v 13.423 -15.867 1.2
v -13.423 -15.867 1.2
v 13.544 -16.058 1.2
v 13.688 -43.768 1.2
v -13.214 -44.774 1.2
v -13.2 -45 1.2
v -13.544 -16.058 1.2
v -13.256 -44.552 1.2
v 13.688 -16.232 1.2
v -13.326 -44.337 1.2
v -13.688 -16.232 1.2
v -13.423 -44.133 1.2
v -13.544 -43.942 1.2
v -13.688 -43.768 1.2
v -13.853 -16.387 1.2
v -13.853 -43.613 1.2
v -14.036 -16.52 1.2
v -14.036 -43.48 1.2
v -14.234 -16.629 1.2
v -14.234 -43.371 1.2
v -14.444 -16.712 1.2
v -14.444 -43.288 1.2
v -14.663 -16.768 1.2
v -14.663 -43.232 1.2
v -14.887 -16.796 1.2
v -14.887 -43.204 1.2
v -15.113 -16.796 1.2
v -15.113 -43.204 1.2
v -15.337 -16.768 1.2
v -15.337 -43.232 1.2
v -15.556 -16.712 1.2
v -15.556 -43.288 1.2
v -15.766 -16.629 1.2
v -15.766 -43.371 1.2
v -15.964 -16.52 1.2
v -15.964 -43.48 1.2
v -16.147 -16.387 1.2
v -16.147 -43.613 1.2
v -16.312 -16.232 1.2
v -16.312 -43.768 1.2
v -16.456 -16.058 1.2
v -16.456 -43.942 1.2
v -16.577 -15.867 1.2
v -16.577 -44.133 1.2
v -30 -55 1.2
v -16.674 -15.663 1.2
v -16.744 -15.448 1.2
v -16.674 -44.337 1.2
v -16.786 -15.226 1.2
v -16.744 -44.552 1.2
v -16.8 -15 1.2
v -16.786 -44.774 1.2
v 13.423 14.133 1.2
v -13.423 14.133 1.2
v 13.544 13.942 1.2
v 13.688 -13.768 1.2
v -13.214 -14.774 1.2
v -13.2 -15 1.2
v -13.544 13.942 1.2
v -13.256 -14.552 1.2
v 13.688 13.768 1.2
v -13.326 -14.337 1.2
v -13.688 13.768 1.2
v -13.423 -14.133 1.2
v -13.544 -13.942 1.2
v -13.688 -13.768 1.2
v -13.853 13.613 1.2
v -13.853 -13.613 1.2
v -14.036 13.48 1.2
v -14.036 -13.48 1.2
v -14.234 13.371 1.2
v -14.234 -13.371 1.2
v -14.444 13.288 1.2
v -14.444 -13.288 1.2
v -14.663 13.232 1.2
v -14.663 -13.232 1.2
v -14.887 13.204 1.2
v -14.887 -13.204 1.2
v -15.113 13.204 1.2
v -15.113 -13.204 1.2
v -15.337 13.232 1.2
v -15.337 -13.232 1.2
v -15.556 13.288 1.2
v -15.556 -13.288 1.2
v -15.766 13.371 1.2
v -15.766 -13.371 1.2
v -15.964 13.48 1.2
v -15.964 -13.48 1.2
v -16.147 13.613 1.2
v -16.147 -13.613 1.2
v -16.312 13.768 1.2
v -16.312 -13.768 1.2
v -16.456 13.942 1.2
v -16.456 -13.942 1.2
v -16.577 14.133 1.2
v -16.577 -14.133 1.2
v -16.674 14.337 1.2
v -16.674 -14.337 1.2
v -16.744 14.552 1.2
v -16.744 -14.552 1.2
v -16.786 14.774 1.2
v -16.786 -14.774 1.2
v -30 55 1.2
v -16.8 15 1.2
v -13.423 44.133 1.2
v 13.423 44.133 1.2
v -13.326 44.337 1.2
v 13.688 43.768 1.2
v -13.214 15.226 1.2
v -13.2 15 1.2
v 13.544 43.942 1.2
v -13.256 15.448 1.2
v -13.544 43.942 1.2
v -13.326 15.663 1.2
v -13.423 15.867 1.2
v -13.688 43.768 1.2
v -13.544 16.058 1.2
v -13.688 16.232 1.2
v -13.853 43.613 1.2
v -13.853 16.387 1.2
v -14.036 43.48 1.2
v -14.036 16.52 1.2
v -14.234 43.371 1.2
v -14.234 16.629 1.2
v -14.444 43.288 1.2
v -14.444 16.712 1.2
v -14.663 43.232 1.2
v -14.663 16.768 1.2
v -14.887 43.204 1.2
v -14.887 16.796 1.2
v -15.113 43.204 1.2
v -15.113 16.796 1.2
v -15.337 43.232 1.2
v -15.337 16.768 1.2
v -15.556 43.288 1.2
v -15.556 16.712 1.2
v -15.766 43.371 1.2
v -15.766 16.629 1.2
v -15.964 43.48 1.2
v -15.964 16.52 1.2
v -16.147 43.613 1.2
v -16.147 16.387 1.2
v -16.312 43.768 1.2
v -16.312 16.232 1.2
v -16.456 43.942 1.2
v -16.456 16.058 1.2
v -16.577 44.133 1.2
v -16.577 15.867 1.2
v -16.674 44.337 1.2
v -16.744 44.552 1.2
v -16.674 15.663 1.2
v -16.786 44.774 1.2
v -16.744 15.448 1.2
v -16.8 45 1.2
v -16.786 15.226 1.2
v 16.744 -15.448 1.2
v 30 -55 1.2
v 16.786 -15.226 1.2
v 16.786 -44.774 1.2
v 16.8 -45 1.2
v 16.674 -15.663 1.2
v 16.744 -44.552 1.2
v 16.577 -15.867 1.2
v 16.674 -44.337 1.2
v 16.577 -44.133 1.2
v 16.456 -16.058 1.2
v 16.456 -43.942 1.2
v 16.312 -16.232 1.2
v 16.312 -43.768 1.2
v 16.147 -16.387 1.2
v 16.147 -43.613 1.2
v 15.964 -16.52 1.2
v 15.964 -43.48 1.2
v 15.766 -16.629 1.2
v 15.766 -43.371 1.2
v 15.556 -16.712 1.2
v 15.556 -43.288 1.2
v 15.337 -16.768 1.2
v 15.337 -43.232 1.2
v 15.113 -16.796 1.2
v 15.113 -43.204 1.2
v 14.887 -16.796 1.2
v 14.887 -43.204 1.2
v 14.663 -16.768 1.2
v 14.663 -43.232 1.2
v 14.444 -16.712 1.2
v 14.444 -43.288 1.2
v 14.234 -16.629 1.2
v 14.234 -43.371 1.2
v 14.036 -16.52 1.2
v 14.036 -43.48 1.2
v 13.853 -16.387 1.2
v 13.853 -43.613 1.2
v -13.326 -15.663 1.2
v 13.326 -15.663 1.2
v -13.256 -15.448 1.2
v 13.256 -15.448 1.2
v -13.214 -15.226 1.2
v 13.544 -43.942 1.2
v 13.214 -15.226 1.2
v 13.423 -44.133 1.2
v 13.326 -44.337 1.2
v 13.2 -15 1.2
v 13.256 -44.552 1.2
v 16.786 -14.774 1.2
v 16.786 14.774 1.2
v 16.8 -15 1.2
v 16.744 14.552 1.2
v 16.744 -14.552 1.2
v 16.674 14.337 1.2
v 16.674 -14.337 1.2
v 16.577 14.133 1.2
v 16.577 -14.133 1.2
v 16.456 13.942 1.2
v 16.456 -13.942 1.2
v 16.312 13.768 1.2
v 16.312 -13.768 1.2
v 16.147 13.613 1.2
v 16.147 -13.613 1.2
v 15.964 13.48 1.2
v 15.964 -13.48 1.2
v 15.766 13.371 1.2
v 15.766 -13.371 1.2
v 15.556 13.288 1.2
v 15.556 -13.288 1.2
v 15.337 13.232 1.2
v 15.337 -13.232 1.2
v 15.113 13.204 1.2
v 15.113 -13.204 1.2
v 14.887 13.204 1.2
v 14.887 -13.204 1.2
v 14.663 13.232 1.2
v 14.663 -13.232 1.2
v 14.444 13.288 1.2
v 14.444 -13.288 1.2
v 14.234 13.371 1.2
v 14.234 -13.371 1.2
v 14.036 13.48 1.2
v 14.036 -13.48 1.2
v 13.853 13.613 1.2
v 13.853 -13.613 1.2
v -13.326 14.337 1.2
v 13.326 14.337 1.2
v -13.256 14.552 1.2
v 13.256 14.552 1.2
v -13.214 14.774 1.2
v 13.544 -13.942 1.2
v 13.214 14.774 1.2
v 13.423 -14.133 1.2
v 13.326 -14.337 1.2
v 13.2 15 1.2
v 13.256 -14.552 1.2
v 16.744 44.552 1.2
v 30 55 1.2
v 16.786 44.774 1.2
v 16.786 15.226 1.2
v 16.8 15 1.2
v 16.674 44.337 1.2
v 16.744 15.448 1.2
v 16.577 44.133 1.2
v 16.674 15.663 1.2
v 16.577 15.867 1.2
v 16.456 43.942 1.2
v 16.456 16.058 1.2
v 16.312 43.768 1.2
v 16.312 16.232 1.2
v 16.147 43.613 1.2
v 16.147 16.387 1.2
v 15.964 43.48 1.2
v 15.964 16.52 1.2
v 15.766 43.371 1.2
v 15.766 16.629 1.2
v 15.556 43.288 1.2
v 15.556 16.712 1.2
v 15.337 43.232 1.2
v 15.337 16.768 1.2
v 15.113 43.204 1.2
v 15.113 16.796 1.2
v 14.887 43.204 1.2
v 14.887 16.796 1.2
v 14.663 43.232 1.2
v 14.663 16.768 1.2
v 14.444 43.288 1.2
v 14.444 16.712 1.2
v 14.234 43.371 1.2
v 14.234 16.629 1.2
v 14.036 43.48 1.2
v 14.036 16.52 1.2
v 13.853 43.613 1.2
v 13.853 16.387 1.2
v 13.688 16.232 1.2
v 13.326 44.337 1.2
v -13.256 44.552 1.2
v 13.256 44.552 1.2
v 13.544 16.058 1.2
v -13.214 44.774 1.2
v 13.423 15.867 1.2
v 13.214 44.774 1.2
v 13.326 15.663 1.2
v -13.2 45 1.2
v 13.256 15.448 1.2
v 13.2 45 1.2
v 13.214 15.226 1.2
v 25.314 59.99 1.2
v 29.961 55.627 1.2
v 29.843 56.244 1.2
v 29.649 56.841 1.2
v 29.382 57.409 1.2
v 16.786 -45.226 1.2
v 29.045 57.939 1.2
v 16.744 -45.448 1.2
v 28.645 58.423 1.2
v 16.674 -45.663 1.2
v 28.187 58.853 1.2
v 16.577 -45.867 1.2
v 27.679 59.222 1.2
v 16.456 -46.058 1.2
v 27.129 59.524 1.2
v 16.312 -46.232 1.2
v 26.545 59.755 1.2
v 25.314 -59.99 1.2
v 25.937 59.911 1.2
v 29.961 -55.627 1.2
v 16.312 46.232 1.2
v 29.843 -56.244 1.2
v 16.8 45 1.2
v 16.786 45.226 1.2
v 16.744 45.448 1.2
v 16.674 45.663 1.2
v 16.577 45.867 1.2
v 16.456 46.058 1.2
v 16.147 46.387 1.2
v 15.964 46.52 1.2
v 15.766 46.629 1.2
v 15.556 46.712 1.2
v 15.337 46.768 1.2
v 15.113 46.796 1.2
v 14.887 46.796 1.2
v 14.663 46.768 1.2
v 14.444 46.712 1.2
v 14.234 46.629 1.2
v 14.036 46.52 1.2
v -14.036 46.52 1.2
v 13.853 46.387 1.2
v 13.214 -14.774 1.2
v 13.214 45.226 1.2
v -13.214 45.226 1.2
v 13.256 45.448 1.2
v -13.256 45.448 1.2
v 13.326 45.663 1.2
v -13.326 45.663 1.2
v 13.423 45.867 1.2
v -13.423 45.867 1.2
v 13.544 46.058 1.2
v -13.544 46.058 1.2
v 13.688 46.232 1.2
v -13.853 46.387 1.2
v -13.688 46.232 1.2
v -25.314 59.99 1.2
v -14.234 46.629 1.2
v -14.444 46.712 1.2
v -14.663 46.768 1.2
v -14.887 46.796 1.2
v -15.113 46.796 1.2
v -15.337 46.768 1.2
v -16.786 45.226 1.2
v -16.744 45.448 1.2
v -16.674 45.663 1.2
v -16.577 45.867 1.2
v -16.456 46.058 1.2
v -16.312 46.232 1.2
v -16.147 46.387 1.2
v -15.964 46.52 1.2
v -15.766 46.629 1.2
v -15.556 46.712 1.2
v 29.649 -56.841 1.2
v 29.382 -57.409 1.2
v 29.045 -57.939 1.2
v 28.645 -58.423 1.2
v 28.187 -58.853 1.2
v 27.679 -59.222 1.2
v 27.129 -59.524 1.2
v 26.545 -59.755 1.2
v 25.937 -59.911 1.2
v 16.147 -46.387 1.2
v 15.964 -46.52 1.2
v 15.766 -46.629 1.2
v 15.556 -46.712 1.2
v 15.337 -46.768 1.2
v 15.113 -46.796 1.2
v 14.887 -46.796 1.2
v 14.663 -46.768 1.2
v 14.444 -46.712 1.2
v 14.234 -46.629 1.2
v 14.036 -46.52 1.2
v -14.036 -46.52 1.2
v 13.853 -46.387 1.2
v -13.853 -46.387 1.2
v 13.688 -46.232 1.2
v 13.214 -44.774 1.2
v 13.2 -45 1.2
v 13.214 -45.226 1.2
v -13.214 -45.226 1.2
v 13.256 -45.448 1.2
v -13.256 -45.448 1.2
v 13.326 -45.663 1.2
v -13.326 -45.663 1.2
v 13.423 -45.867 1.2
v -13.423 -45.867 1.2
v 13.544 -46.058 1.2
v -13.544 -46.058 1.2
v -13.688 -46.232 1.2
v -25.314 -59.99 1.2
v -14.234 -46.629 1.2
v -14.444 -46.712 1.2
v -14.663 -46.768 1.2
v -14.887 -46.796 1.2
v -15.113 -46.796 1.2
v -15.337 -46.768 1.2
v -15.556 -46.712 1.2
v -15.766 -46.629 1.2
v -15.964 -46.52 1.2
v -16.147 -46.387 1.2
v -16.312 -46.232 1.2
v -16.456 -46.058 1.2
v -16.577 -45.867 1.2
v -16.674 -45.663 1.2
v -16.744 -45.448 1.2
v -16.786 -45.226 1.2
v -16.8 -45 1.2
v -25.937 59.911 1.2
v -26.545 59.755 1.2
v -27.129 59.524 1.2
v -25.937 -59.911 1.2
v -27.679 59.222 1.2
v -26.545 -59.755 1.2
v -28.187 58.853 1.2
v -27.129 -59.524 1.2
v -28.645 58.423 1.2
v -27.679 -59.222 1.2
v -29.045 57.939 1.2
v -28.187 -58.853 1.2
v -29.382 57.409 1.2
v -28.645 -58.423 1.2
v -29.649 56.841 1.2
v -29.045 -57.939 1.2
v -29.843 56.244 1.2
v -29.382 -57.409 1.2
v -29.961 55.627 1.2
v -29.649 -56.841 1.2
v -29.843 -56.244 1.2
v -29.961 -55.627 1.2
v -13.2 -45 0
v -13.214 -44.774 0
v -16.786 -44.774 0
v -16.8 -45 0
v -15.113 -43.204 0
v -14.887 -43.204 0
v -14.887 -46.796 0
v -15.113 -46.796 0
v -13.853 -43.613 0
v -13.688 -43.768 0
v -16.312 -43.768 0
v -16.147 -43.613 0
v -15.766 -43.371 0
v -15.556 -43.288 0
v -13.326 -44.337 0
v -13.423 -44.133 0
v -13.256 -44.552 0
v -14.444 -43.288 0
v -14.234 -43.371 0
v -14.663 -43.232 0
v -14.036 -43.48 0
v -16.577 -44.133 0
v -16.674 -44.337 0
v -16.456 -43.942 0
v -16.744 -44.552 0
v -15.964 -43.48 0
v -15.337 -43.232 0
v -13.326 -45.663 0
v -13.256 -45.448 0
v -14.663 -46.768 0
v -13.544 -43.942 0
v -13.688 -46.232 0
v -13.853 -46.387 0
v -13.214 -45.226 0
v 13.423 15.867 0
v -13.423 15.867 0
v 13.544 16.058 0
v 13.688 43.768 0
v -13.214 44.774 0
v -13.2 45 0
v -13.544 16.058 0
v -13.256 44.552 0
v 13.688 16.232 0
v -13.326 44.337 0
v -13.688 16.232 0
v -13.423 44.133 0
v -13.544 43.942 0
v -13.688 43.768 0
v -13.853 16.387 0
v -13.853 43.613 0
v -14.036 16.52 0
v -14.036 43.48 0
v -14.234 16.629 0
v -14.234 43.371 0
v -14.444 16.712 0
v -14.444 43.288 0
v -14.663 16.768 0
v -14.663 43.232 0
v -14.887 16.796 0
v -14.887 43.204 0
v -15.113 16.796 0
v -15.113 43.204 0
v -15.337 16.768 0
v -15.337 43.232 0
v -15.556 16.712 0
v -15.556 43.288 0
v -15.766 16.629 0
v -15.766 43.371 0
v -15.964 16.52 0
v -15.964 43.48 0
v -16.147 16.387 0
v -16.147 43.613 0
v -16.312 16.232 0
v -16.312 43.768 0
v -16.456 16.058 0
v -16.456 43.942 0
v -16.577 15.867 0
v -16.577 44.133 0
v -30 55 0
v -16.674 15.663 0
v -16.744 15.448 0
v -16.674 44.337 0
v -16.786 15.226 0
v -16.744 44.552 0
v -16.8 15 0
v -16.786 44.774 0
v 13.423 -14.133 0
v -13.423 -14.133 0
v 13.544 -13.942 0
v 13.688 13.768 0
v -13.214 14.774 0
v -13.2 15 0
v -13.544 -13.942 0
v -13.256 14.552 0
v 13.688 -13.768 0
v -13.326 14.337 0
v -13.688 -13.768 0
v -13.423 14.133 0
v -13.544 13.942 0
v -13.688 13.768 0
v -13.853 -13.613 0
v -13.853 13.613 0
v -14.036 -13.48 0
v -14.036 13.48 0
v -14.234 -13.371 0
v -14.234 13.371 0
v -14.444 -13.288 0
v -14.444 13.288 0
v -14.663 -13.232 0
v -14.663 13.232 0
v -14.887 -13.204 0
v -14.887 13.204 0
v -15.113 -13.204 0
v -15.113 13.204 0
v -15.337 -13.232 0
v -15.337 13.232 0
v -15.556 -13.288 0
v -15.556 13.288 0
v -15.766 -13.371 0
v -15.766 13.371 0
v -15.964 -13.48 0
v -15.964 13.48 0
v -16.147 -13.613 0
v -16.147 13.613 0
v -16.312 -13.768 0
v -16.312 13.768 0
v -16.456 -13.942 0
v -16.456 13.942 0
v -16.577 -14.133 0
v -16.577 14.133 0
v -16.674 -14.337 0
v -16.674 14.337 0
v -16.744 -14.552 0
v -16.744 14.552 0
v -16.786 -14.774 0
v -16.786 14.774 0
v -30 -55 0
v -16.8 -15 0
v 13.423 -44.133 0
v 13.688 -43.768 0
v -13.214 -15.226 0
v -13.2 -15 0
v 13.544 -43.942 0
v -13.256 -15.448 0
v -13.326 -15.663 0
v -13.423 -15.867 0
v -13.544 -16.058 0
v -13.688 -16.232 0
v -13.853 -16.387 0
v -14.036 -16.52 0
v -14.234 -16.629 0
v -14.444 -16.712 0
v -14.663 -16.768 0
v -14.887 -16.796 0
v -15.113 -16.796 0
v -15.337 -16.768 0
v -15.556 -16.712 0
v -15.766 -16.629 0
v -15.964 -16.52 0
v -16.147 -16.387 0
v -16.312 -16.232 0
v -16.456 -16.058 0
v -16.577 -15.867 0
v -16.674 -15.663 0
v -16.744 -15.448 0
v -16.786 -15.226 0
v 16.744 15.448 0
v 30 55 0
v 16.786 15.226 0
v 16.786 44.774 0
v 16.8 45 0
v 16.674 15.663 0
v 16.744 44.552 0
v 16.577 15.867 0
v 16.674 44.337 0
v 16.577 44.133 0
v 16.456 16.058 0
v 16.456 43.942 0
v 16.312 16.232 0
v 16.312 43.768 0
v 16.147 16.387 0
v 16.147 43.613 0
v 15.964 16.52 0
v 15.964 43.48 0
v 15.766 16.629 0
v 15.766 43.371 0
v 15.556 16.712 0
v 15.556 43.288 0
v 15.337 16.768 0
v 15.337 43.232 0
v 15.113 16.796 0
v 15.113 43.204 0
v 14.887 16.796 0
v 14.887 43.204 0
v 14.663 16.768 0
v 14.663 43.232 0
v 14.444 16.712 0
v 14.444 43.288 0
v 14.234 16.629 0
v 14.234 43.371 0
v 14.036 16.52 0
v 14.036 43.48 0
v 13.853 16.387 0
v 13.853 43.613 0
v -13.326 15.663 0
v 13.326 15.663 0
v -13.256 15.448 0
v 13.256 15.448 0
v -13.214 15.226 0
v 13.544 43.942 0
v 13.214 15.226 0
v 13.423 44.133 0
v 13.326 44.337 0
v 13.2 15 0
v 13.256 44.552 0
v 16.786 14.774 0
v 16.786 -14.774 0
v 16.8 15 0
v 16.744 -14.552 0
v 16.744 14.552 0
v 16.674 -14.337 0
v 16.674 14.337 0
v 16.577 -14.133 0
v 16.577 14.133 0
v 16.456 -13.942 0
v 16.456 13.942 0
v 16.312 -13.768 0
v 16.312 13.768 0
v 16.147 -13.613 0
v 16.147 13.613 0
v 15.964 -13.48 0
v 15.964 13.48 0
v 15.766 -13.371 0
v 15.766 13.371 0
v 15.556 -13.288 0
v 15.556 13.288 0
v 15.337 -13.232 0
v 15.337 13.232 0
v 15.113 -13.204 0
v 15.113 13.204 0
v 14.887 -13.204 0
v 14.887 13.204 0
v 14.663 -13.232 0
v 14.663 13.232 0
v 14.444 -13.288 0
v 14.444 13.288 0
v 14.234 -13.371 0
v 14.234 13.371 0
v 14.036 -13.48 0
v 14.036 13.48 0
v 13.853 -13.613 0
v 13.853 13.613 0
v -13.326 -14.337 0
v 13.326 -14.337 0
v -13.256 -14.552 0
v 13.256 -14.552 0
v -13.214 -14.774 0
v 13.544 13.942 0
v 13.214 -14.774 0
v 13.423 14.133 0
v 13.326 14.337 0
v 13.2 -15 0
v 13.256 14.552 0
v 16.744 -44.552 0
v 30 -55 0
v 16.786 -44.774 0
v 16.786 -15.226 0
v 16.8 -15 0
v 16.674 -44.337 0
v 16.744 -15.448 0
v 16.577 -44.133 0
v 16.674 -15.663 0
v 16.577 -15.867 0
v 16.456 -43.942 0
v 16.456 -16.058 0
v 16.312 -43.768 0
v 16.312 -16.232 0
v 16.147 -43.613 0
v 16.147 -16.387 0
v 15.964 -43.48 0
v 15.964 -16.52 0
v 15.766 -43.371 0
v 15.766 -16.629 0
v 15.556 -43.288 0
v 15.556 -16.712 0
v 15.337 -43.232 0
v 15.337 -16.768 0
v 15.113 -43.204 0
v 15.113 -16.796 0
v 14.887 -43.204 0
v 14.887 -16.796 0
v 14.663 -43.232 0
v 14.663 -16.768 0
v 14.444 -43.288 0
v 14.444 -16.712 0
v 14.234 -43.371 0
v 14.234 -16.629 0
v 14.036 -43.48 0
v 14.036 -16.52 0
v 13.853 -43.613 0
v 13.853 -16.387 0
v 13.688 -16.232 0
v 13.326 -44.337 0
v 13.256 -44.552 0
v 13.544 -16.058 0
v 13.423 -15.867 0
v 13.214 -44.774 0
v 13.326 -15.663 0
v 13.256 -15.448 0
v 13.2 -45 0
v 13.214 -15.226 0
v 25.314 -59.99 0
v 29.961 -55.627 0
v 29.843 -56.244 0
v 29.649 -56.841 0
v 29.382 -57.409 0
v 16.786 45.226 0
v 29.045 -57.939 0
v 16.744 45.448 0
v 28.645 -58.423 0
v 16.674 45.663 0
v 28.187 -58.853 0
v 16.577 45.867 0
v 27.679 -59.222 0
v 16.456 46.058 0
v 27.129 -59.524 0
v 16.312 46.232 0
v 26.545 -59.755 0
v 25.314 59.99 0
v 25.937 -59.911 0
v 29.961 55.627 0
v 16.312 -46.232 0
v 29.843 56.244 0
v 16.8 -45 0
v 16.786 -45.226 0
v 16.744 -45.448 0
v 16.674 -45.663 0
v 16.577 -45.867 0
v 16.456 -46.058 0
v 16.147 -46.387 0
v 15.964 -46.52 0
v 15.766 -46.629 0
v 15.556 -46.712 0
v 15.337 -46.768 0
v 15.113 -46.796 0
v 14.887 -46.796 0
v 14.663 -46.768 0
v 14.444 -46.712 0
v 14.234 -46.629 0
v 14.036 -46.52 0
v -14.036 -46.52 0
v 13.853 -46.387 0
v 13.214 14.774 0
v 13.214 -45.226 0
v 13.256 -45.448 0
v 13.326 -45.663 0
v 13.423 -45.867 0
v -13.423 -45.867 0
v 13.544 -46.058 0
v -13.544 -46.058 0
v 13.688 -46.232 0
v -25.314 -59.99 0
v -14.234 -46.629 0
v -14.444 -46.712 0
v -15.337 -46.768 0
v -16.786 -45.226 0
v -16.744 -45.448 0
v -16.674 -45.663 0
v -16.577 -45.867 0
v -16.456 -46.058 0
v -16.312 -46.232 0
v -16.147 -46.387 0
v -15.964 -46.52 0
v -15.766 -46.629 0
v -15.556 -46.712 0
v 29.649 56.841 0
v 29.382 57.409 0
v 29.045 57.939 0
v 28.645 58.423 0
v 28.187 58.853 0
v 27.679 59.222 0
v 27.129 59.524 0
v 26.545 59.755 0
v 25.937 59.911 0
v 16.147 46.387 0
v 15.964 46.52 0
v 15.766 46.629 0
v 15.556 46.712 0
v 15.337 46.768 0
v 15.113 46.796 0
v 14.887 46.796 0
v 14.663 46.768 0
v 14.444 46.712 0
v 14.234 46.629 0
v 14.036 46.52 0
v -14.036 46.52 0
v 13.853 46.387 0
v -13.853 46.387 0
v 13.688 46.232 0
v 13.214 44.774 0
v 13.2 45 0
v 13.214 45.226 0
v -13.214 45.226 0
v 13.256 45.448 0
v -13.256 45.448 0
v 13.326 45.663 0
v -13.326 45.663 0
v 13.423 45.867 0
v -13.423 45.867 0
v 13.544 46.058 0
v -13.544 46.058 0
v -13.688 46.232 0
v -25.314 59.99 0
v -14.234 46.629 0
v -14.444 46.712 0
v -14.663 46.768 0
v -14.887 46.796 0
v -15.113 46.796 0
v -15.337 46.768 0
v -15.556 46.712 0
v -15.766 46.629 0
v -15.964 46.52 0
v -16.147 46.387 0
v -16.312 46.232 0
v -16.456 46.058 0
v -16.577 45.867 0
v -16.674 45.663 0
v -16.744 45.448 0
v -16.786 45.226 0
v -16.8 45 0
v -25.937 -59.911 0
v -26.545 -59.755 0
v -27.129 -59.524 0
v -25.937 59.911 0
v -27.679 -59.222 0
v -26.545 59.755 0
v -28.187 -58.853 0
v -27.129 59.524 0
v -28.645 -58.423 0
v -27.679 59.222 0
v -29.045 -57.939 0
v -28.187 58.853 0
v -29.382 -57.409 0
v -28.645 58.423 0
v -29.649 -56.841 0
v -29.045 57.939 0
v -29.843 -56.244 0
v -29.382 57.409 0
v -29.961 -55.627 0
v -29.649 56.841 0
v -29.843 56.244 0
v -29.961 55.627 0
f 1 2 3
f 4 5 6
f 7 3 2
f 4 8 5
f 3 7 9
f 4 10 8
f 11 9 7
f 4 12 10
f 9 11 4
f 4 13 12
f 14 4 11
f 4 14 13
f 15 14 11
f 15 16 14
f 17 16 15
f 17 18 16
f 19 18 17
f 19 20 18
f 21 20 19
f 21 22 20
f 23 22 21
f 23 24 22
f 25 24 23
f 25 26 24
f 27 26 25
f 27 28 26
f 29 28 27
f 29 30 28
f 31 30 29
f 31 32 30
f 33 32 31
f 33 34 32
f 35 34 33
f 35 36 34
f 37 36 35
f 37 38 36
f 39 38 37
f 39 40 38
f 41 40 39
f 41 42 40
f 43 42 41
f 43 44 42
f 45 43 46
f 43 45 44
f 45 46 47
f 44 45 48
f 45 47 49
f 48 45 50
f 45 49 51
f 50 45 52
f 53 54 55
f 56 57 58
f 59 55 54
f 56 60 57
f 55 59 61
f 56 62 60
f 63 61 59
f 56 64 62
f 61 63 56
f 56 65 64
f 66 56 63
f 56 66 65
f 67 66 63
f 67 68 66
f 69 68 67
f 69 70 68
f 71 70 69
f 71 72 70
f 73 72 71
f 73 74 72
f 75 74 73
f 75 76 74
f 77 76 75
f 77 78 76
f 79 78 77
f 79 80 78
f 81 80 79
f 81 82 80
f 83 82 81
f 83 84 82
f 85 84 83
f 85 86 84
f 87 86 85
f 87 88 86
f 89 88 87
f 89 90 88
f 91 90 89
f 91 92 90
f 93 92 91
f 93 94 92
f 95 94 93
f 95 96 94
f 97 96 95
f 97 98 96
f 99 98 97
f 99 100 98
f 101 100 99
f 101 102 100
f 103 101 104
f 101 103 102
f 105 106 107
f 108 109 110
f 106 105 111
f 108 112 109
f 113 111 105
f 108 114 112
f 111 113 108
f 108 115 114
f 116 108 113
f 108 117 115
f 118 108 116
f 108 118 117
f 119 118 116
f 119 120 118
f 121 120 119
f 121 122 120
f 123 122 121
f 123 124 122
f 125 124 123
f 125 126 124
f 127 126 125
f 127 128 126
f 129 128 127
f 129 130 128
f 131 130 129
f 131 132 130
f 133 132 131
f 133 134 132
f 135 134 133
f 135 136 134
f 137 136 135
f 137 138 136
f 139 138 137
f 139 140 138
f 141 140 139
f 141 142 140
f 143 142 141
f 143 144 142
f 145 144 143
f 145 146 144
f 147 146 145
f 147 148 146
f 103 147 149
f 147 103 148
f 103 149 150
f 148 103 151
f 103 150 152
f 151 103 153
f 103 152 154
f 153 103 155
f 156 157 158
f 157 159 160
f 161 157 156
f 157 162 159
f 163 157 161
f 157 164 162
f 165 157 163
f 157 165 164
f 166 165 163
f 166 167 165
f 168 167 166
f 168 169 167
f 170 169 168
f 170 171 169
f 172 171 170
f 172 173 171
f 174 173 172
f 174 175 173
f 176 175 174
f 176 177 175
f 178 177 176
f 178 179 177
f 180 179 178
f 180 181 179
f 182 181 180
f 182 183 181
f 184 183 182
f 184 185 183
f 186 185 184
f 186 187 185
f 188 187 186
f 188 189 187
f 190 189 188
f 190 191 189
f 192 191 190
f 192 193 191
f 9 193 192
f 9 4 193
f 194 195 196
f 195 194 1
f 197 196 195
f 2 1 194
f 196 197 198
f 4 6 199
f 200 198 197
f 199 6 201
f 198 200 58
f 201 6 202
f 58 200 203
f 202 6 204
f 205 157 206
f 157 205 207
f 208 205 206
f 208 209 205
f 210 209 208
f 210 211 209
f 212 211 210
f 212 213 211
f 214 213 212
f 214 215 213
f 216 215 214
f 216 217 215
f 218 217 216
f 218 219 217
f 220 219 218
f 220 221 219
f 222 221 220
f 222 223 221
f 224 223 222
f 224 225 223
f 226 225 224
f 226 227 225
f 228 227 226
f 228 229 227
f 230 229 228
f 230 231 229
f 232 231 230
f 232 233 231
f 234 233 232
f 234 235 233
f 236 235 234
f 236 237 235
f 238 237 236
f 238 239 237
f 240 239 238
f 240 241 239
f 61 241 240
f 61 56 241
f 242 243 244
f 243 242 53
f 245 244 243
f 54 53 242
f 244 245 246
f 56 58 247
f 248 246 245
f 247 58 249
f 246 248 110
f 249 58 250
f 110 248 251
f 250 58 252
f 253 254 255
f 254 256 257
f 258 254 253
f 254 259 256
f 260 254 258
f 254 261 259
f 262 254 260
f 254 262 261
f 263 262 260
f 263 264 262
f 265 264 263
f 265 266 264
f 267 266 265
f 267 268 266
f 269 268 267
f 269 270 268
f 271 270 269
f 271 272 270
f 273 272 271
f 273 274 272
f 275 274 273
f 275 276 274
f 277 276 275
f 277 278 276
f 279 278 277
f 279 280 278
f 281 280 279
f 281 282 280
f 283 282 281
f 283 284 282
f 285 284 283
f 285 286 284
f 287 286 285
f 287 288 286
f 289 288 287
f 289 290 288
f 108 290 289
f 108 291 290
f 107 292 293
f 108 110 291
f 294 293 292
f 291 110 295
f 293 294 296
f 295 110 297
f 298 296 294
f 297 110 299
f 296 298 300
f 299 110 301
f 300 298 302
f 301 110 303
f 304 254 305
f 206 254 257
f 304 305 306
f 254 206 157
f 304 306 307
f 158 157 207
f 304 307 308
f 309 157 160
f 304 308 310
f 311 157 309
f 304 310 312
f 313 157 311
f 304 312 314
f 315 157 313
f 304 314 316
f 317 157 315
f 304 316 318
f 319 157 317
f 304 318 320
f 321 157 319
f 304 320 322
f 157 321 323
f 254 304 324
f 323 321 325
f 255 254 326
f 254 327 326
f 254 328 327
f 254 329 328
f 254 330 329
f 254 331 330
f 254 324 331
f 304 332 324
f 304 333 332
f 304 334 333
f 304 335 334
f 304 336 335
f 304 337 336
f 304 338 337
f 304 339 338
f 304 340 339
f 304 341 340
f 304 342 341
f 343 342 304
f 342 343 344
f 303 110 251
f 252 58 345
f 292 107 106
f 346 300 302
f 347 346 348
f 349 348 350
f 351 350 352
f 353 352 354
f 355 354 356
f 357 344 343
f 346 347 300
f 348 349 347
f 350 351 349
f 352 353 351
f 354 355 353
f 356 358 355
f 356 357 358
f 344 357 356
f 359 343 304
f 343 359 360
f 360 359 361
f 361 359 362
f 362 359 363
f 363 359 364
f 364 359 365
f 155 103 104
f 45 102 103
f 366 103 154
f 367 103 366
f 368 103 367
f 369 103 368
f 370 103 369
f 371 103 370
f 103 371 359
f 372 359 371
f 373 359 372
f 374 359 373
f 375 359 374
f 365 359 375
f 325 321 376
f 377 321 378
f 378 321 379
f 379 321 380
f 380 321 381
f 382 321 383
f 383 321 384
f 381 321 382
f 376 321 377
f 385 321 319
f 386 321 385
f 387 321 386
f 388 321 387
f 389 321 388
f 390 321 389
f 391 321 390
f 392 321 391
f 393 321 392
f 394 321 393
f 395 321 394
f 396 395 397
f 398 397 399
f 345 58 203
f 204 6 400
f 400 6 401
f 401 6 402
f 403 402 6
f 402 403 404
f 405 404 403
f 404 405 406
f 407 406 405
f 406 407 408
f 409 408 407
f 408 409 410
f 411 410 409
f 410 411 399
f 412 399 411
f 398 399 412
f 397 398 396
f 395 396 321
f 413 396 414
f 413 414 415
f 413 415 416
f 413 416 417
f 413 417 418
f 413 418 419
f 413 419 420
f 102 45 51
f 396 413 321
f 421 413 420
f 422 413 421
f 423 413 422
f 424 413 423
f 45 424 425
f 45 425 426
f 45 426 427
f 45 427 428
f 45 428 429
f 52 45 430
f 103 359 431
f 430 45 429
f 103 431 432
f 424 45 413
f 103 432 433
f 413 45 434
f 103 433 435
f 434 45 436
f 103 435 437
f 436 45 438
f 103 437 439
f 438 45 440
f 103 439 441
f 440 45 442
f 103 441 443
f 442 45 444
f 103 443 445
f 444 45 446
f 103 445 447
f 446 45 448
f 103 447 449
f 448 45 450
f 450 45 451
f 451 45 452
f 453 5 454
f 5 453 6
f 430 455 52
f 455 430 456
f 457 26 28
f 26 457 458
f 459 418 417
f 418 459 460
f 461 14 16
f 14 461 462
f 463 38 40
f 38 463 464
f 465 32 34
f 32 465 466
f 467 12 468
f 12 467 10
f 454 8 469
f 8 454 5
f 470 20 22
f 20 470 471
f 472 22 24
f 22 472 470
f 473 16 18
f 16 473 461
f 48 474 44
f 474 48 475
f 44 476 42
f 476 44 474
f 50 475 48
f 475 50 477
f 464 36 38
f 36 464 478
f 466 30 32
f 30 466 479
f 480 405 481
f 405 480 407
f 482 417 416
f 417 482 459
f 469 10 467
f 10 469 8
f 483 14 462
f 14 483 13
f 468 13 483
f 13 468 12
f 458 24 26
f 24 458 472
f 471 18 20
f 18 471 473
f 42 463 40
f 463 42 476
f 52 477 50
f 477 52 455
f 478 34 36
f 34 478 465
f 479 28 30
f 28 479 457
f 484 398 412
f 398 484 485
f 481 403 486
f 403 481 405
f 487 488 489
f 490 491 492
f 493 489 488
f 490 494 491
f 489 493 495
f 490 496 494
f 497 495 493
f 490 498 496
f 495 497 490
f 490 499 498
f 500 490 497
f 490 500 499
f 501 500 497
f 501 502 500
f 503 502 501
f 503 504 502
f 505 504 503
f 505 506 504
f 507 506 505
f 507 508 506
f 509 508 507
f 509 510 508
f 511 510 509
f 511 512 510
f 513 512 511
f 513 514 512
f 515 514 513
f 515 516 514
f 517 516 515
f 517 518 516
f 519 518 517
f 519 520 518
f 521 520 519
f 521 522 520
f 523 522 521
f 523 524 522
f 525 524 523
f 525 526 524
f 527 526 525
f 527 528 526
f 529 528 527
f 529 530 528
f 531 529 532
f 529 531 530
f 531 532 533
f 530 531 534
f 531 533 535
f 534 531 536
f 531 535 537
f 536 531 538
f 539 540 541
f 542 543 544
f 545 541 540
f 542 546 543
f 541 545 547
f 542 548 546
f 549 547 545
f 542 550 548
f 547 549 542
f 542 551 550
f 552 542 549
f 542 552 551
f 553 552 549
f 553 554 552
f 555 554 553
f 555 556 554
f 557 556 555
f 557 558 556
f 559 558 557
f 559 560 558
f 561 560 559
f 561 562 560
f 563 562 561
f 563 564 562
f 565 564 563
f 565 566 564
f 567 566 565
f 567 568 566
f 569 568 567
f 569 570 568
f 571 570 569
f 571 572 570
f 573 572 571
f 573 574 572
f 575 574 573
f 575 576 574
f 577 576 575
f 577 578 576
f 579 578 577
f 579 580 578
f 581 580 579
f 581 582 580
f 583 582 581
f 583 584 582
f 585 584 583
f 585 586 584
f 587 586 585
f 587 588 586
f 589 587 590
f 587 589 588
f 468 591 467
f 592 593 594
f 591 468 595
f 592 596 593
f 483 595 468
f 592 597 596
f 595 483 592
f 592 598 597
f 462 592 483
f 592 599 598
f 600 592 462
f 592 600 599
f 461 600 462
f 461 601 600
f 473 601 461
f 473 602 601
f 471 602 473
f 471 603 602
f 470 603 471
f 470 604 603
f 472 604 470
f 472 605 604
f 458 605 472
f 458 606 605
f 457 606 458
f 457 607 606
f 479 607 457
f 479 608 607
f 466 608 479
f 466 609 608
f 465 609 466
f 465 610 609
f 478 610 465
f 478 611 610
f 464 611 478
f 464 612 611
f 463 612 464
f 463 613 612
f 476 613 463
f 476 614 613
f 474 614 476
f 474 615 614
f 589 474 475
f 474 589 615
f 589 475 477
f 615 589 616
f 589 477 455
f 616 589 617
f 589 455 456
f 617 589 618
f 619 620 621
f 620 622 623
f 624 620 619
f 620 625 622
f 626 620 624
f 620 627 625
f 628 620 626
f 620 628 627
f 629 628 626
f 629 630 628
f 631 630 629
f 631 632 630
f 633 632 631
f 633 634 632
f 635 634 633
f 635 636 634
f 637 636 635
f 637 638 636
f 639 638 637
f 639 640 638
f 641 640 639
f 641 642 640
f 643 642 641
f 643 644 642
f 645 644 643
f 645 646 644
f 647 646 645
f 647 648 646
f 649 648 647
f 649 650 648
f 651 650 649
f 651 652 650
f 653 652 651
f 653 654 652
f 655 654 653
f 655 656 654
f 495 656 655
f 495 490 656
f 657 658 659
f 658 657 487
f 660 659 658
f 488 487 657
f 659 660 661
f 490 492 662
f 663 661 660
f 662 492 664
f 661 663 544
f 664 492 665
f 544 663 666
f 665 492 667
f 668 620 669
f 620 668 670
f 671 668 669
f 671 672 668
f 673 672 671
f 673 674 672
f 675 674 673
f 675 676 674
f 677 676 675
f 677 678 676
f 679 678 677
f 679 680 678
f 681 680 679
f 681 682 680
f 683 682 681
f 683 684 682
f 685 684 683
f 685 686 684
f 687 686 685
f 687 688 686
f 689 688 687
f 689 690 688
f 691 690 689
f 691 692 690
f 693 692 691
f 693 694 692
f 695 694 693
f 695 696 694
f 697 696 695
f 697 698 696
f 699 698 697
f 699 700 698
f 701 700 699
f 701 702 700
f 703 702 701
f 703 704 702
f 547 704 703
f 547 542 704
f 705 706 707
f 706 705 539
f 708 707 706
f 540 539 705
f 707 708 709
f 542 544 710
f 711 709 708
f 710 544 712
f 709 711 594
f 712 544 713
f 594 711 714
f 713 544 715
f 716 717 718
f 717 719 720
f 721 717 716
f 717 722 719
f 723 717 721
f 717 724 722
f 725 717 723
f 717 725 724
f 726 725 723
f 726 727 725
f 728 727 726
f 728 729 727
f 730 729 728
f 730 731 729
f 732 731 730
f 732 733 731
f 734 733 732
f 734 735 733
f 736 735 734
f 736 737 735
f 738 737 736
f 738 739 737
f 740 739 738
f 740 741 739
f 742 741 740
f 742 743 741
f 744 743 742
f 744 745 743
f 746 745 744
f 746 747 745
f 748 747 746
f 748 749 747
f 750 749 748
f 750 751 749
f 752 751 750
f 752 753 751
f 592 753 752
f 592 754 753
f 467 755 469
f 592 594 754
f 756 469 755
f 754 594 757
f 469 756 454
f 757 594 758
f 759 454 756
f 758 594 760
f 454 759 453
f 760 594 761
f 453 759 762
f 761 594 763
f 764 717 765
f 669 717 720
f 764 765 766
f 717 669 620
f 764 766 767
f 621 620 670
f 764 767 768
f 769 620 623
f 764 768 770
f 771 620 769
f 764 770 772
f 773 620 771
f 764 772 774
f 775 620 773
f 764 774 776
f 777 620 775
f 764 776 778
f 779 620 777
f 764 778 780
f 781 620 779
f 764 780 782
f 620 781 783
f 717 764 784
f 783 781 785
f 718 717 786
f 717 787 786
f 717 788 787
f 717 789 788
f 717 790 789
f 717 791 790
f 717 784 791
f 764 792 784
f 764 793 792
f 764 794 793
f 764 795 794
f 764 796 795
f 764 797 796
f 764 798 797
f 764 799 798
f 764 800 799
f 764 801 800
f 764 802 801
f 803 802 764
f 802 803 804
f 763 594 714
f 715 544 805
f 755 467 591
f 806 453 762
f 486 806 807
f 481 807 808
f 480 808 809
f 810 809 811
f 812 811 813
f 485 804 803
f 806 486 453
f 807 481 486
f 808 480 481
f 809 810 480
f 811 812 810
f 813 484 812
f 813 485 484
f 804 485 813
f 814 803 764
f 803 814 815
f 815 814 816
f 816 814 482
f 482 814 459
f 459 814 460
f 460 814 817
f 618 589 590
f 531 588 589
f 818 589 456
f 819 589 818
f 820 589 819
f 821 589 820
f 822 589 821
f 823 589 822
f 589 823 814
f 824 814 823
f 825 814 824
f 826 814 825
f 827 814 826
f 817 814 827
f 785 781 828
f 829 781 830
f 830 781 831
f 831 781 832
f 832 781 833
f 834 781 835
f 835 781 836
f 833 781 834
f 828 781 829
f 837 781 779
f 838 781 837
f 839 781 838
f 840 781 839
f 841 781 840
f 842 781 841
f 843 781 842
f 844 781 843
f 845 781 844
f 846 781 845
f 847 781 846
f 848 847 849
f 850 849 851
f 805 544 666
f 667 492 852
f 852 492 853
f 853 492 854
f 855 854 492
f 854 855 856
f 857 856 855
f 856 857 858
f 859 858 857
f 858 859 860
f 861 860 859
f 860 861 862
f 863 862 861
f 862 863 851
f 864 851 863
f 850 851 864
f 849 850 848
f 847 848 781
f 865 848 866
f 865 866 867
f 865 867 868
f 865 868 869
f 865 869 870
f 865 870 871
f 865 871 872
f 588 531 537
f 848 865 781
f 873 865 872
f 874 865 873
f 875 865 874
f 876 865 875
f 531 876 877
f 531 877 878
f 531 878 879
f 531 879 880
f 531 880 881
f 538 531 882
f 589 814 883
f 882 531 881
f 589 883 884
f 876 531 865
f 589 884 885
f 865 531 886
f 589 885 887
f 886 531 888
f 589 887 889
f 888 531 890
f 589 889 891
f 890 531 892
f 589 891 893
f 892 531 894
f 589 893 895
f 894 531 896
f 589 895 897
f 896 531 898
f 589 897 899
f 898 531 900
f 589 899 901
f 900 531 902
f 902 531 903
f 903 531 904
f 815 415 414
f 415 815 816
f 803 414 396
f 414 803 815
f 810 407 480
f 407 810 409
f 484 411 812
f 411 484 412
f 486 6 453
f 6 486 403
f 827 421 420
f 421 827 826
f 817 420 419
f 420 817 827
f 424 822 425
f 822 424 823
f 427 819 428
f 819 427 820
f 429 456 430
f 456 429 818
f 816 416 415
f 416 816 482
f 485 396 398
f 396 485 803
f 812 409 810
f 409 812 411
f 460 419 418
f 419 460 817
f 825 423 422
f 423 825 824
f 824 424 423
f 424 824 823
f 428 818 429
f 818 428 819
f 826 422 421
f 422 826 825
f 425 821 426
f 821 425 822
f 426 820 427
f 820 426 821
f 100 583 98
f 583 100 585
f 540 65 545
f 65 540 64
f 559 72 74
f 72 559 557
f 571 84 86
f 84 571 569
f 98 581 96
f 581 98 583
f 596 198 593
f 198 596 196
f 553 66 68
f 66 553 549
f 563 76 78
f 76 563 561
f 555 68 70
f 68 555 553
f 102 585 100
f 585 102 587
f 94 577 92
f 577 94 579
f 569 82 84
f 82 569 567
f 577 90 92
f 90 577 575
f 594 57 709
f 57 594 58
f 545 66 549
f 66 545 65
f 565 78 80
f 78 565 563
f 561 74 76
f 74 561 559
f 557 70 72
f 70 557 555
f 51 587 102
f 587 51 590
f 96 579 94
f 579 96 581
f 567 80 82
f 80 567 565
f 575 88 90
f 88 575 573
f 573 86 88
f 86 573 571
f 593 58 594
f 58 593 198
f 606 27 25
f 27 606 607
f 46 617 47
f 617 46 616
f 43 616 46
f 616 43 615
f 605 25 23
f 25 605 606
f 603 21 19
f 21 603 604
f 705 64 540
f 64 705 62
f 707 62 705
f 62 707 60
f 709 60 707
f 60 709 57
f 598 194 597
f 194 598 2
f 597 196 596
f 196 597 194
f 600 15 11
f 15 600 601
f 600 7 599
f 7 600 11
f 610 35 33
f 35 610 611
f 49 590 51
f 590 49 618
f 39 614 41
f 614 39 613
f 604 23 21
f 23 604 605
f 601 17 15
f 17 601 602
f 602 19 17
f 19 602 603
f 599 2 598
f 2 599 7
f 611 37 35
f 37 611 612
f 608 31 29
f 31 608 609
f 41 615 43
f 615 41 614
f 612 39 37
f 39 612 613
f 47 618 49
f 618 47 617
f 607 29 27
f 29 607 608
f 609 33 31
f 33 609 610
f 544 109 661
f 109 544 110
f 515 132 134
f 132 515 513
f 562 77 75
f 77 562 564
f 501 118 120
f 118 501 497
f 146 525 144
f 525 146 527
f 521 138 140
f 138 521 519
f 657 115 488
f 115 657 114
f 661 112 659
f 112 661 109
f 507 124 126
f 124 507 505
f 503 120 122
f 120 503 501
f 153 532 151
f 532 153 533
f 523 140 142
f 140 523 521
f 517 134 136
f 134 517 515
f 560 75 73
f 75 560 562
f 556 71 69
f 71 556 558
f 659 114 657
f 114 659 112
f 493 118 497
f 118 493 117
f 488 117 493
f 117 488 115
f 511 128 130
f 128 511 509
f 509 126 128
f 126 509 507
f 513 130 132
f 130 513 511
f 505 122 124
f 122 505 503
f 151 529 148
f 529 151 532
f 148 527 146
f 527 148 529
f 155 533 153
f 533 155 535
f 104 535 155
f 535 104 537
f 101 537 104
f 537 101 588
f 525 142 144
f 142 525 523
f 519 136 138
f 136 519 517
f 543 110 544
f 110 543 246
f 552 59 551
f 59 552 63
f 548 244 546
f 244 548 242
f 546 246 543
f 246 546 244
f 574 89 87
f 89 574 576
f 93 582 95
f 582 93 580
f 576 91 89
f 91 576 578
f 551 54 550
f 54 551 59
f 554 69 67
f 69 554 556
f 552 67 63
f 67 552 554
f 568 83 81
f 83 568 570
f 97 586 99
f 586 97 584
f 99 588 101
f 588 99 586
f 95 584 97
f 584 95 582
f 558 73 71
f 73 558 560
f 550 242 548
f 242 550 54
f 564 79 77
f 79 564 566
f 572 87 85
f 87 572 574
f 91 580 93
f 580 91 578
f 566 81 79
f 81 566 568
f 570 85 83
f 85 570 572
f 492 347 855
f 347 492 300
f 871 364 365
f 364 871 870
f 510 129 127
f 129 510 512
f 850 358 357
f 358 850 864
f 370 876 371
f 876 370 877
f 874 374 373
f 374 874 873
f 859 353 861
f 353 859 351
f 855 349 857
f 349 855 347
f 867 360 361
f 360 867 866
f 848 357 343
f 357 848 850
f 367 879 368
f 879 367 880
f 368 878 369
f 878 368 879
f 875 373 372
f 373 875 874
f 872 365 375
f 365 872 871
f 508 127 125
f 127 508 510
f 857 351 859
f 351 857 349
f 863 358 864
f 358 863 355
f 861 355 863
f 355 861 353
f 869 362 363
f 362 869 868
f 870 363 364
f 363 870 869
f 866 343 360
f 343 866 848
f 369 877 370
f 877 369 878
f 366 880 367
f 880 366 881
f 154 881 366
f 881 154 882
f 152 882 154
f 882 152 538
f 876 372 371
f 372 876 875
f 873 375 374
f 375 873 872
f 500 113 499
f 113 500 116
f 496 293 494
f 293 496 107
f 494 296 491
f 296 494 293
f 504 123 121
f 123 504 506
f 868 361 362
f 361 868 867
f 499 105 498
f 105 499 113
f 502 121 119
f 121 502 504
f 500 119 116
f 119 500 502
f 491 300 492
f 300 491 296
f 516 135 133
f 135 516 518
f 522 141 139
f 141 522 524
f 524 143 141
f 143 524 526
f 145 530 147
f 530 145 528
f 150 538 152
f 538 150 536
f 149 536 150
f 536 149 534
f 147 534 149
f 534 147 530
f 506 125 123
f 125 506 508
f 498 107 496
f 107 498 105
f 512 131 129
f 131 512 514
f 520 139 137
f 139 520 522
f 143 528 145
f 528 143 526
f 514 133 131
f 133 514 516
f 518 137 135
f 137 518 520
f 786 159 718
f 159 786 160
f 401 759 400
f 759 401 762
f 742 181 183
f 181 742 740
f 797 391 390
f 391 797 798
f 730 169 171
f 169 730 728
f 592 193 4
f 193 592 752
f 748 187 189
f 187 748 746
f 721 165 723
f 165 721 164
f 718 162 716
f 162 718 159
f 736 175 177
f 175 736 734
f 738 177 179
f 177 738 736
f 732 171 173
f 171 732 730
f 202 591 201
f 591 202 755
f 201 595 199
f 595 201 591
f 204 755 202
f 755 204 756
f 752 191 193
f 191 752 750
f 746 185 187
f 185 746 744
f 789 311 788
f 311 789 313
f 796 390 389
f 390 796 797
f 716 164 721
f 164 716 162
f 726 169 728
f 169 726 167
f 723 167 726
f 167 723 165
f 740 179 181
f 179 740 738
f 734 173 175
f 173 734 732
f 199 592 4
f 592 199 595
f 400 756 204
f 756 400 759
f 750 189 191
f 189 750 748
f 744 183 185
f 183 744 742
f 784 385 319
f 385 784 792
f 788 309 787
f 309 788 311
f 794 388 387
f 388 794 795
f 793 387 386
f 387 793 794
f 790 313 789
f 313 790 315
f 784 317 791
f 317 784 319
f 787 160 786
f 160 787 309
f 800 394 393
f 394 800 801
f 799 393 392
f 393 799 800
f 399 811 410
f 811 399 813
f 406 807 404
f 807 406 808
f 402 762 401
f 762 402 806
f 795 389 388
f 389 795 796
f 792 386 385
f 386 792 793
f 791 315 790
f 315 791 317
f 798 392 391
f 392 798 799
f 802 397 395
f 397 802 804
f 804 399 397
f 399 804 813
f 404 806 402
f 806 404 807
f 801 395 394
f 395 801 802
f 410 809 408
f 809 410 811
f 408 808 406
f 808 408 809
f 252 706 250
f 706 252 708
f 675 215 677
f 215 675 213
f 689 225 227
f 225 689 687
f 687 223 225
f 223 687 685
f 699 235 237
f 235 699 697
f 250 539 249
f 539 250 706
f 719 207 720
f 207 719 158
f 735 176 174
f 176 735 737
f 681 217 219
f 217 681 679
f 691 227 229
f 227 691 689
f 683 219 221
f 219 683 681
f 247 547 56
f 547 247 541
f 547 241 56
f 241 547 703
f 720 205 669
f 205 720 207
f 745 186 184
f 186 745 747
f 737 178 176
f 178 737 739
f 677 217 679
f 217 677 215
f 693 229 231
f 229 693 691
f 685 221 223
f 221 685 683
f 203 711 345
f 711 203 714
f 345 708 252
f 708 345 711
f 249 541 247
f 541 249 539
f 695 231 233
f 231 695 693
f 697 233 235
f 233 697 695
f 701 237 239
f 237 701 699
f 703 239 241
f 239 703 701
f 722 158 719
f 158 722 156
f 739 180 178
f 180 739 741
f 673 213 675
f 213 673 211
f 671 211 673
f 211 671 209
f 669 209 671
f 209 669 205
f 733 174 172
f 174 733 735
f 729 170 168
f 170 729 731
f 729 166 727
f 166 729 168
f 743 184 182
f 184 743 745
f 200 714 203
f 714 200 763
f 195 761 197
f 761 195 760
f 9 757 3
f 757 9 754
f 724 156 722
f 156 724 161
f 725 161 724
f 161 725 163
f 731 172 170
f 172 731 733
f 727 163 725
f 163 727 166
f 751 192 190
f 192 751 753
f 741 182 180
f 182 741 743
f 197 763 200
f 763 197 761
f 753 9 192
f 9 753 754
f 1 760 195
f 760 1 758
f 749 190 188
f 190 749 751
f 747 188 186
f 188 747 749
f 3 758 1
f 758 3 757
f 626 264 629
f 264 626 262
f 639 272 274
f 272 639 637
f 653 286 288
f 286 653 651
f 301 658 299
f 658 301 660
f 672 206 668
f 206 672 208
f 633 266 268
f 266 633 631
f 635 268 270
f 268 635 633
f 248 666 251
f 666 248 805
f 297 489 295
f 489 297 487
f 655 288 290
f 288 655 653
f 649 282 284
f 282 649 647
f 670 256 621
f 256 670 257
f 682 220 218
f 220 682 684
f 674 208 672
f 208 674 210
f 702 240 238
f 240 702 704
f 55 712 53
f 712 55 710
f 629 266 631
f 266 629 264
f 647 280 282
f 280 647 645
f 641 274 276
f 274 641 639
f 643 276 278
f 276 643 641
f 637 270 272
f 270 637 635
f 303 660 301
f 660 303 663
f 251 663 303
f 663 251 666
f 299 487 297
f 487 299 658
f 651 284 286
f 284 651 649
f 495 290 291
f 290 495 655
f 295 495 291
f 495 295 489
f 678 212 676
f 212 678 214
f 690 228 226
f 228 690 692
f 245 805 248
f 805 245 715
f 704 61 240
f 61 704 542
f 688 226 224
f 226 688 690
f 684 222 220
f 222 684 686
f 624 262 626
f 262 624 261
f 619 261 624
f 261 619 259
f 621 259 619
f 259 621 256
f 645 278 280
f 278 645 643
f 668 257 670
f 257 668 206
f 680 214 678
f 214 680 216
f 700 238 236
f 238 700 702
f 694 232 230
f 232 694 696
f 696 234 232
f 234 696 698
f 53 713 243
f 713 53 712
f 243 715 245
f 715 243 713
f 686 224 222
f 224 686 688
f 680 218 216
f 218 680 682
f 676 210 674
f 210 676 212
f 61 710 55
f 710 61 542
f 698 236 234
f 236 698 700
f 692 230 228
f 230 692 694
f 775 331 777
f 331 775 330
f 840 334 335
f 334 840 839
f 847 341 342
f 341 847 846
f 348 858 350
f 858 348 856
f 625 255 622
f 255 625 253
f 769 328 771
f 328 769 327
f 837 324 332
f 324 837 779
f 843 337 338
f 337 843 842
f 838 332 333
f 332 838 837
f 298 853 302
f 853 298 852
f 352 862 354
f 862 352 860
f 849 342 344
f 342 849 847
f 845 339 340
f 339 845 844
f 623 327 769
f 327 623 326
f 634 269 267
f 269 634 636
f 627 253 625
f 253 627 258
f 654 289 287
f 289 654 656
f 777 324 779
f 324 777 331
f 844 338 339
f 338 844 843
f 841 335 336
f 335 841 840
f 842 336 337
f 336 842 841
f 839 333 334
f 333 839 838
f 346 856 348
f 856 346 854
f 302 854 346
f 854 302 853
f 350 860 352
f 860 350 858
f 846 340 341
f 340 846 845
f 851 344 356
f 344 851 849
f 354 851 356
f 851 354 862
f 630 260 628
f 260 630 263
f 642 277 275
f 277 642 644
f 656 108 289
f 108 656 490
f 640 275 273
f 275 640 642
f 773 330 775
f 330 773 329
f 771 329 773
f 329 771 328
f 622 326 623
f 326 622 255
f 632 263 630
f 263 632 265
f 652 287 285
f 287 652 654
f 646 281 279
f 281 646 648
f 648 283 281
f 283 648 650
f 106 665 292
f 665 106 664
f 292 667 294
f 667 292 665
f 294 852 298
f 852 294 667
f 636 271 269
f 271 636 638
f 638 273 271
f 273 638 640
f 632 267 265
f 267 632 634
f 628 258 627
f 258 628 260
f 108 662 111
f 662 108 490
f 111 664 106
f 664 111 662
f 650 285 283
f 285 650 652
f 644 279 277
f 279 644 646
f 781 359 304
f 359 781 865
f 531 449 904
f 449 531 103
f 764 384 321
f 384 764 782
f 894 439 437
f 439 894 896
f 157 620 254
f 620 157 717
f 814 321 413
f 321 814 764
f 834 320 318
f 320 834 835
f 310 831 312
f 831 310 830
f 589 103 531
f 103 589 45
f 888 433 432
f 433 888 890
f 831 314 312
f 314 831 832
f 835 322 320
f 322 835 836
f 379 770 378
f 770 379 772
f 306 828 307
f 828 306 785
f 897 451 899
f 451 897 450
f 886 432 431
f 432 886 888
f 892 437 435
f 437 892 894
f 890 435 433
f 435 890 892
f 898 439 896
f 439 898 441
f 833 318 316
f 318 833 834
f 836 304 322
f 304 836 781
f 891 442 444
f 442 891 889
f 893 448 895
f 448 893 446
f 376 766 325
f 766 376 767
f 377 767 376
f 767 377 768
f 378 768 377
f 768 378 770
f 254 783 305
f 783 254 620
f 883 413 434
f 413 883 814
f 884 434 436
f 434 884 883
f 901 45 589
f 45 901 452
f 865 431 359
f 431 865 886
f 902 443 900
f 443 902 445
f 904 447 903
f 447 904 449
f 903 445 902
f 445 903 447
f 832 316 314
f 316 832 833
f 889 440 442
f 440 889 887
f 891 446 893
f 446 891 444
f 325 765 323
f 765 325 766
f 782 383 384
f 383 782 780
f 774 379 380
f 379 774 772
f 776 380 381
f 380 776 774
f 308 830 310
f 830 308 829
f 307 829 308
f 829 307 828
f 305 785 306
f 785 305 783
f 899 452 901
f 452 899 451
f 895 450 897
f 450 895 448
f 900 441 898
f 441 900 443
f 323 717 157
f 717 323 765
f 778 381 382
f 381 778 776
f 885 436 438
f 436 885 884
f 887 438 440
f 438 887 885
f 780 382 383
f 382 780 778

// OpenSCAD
$fn = 50;


difference() {
	union() {
		hull() {
			translate(v = [-25.0000000000, 55.0000000000, 0]) {
				cylinder(h = 60, r = 5);
			}
			translate(v = [25.0000000000, 55.0000000000, 0]) {
				cylinder(h = 60, r = 5);
			}
			translate(v = [-25.0000000000, -55.0000000000, 0]) {
				cylinder(h = 60, r = 5);
			}
			translate(v = [25.0000000000, -55.0000000000, 0]) {
				cylinder(h = 60, r = 5);
			}
		}
	}
	union() {
		translate(v = [0, 0, 1.2000000000]) {
			hull() {
				translate(v = [-25.0000000000, 55.0000000000, 0]) {
					cylinder(h = 58.8000000000, r = 3.8000000000);
				}
				translate(v = [25.0000000000, 55.0000000000, 0]) {
					cylinder(h = 58.8000000000, r = 3.8000000000);
				}
				translate(v = [-25.0000000000, -55.0000000000, 0]) {
					cylinder(h = 58.8000000000, r = 3.8000000000);
				}
				translate(v = [25.0000000000, -55.0000000000, 0]) {
					cylinder(h = 58.8000000000, r = 3.8000000000);
				}
			}
		}
		#translate(v = [-15.0000000000, -45.0000000000, 0]) {
			cylinder(h = 1.2000000000, r = 1.8000000000);
		}
		#translate(v = [-15.0000000000, -15.0000000000, 0]) {
			cylinder(h = 1.2000000000, r = 1.8000000000);
		}
		#translate(v = [-15.0000000000, 15.0000000000, 0]) {
			cylinder(h = 1.2000000000, r = 1.8000000000);
		}
		#translate(v = [-15.0000000000, 45.0000000000, 0]) {
			cylinder(h = 1.2000000000, r = 1.8000000000);
		}
		#translate(v = [15.0000000000, -45.0000000000, 0]) {
			cylinder(h = 1.2000000000, r = 1.8000000000);
		}
		#translate(v = [15.0000000000, -15.0000000000, 0]) {
			cylinder(h = 1.2000000000, r = 1.8000000000);
		}
		#translate(v = [15.0000000000, 15.0000000000, 0]) {
			cylinder(h = 1.2000000000, r = 1.8000000000);
		}
		#translate(v = [15.0000000000, 45.0000000000, 0]) {
			cylinder(h = 1.2000000000, r = 1.8000000000);
		}
		translate(v = [-250.0000000000, -250.0000000000, 1.2000000000]) {
			cube(size = [500, 500, 500]);
		}
		translate(v = [-250.0000000000, -250.0000000000, 1.2000000000]) {
			cube(size = [500, 500, 500]);
		}
		translate(v = [-250.0000000000, -250.0000000000, 1.2000000000]) {
			cube(size = [500, 500, 500]);
		}
	}
}
